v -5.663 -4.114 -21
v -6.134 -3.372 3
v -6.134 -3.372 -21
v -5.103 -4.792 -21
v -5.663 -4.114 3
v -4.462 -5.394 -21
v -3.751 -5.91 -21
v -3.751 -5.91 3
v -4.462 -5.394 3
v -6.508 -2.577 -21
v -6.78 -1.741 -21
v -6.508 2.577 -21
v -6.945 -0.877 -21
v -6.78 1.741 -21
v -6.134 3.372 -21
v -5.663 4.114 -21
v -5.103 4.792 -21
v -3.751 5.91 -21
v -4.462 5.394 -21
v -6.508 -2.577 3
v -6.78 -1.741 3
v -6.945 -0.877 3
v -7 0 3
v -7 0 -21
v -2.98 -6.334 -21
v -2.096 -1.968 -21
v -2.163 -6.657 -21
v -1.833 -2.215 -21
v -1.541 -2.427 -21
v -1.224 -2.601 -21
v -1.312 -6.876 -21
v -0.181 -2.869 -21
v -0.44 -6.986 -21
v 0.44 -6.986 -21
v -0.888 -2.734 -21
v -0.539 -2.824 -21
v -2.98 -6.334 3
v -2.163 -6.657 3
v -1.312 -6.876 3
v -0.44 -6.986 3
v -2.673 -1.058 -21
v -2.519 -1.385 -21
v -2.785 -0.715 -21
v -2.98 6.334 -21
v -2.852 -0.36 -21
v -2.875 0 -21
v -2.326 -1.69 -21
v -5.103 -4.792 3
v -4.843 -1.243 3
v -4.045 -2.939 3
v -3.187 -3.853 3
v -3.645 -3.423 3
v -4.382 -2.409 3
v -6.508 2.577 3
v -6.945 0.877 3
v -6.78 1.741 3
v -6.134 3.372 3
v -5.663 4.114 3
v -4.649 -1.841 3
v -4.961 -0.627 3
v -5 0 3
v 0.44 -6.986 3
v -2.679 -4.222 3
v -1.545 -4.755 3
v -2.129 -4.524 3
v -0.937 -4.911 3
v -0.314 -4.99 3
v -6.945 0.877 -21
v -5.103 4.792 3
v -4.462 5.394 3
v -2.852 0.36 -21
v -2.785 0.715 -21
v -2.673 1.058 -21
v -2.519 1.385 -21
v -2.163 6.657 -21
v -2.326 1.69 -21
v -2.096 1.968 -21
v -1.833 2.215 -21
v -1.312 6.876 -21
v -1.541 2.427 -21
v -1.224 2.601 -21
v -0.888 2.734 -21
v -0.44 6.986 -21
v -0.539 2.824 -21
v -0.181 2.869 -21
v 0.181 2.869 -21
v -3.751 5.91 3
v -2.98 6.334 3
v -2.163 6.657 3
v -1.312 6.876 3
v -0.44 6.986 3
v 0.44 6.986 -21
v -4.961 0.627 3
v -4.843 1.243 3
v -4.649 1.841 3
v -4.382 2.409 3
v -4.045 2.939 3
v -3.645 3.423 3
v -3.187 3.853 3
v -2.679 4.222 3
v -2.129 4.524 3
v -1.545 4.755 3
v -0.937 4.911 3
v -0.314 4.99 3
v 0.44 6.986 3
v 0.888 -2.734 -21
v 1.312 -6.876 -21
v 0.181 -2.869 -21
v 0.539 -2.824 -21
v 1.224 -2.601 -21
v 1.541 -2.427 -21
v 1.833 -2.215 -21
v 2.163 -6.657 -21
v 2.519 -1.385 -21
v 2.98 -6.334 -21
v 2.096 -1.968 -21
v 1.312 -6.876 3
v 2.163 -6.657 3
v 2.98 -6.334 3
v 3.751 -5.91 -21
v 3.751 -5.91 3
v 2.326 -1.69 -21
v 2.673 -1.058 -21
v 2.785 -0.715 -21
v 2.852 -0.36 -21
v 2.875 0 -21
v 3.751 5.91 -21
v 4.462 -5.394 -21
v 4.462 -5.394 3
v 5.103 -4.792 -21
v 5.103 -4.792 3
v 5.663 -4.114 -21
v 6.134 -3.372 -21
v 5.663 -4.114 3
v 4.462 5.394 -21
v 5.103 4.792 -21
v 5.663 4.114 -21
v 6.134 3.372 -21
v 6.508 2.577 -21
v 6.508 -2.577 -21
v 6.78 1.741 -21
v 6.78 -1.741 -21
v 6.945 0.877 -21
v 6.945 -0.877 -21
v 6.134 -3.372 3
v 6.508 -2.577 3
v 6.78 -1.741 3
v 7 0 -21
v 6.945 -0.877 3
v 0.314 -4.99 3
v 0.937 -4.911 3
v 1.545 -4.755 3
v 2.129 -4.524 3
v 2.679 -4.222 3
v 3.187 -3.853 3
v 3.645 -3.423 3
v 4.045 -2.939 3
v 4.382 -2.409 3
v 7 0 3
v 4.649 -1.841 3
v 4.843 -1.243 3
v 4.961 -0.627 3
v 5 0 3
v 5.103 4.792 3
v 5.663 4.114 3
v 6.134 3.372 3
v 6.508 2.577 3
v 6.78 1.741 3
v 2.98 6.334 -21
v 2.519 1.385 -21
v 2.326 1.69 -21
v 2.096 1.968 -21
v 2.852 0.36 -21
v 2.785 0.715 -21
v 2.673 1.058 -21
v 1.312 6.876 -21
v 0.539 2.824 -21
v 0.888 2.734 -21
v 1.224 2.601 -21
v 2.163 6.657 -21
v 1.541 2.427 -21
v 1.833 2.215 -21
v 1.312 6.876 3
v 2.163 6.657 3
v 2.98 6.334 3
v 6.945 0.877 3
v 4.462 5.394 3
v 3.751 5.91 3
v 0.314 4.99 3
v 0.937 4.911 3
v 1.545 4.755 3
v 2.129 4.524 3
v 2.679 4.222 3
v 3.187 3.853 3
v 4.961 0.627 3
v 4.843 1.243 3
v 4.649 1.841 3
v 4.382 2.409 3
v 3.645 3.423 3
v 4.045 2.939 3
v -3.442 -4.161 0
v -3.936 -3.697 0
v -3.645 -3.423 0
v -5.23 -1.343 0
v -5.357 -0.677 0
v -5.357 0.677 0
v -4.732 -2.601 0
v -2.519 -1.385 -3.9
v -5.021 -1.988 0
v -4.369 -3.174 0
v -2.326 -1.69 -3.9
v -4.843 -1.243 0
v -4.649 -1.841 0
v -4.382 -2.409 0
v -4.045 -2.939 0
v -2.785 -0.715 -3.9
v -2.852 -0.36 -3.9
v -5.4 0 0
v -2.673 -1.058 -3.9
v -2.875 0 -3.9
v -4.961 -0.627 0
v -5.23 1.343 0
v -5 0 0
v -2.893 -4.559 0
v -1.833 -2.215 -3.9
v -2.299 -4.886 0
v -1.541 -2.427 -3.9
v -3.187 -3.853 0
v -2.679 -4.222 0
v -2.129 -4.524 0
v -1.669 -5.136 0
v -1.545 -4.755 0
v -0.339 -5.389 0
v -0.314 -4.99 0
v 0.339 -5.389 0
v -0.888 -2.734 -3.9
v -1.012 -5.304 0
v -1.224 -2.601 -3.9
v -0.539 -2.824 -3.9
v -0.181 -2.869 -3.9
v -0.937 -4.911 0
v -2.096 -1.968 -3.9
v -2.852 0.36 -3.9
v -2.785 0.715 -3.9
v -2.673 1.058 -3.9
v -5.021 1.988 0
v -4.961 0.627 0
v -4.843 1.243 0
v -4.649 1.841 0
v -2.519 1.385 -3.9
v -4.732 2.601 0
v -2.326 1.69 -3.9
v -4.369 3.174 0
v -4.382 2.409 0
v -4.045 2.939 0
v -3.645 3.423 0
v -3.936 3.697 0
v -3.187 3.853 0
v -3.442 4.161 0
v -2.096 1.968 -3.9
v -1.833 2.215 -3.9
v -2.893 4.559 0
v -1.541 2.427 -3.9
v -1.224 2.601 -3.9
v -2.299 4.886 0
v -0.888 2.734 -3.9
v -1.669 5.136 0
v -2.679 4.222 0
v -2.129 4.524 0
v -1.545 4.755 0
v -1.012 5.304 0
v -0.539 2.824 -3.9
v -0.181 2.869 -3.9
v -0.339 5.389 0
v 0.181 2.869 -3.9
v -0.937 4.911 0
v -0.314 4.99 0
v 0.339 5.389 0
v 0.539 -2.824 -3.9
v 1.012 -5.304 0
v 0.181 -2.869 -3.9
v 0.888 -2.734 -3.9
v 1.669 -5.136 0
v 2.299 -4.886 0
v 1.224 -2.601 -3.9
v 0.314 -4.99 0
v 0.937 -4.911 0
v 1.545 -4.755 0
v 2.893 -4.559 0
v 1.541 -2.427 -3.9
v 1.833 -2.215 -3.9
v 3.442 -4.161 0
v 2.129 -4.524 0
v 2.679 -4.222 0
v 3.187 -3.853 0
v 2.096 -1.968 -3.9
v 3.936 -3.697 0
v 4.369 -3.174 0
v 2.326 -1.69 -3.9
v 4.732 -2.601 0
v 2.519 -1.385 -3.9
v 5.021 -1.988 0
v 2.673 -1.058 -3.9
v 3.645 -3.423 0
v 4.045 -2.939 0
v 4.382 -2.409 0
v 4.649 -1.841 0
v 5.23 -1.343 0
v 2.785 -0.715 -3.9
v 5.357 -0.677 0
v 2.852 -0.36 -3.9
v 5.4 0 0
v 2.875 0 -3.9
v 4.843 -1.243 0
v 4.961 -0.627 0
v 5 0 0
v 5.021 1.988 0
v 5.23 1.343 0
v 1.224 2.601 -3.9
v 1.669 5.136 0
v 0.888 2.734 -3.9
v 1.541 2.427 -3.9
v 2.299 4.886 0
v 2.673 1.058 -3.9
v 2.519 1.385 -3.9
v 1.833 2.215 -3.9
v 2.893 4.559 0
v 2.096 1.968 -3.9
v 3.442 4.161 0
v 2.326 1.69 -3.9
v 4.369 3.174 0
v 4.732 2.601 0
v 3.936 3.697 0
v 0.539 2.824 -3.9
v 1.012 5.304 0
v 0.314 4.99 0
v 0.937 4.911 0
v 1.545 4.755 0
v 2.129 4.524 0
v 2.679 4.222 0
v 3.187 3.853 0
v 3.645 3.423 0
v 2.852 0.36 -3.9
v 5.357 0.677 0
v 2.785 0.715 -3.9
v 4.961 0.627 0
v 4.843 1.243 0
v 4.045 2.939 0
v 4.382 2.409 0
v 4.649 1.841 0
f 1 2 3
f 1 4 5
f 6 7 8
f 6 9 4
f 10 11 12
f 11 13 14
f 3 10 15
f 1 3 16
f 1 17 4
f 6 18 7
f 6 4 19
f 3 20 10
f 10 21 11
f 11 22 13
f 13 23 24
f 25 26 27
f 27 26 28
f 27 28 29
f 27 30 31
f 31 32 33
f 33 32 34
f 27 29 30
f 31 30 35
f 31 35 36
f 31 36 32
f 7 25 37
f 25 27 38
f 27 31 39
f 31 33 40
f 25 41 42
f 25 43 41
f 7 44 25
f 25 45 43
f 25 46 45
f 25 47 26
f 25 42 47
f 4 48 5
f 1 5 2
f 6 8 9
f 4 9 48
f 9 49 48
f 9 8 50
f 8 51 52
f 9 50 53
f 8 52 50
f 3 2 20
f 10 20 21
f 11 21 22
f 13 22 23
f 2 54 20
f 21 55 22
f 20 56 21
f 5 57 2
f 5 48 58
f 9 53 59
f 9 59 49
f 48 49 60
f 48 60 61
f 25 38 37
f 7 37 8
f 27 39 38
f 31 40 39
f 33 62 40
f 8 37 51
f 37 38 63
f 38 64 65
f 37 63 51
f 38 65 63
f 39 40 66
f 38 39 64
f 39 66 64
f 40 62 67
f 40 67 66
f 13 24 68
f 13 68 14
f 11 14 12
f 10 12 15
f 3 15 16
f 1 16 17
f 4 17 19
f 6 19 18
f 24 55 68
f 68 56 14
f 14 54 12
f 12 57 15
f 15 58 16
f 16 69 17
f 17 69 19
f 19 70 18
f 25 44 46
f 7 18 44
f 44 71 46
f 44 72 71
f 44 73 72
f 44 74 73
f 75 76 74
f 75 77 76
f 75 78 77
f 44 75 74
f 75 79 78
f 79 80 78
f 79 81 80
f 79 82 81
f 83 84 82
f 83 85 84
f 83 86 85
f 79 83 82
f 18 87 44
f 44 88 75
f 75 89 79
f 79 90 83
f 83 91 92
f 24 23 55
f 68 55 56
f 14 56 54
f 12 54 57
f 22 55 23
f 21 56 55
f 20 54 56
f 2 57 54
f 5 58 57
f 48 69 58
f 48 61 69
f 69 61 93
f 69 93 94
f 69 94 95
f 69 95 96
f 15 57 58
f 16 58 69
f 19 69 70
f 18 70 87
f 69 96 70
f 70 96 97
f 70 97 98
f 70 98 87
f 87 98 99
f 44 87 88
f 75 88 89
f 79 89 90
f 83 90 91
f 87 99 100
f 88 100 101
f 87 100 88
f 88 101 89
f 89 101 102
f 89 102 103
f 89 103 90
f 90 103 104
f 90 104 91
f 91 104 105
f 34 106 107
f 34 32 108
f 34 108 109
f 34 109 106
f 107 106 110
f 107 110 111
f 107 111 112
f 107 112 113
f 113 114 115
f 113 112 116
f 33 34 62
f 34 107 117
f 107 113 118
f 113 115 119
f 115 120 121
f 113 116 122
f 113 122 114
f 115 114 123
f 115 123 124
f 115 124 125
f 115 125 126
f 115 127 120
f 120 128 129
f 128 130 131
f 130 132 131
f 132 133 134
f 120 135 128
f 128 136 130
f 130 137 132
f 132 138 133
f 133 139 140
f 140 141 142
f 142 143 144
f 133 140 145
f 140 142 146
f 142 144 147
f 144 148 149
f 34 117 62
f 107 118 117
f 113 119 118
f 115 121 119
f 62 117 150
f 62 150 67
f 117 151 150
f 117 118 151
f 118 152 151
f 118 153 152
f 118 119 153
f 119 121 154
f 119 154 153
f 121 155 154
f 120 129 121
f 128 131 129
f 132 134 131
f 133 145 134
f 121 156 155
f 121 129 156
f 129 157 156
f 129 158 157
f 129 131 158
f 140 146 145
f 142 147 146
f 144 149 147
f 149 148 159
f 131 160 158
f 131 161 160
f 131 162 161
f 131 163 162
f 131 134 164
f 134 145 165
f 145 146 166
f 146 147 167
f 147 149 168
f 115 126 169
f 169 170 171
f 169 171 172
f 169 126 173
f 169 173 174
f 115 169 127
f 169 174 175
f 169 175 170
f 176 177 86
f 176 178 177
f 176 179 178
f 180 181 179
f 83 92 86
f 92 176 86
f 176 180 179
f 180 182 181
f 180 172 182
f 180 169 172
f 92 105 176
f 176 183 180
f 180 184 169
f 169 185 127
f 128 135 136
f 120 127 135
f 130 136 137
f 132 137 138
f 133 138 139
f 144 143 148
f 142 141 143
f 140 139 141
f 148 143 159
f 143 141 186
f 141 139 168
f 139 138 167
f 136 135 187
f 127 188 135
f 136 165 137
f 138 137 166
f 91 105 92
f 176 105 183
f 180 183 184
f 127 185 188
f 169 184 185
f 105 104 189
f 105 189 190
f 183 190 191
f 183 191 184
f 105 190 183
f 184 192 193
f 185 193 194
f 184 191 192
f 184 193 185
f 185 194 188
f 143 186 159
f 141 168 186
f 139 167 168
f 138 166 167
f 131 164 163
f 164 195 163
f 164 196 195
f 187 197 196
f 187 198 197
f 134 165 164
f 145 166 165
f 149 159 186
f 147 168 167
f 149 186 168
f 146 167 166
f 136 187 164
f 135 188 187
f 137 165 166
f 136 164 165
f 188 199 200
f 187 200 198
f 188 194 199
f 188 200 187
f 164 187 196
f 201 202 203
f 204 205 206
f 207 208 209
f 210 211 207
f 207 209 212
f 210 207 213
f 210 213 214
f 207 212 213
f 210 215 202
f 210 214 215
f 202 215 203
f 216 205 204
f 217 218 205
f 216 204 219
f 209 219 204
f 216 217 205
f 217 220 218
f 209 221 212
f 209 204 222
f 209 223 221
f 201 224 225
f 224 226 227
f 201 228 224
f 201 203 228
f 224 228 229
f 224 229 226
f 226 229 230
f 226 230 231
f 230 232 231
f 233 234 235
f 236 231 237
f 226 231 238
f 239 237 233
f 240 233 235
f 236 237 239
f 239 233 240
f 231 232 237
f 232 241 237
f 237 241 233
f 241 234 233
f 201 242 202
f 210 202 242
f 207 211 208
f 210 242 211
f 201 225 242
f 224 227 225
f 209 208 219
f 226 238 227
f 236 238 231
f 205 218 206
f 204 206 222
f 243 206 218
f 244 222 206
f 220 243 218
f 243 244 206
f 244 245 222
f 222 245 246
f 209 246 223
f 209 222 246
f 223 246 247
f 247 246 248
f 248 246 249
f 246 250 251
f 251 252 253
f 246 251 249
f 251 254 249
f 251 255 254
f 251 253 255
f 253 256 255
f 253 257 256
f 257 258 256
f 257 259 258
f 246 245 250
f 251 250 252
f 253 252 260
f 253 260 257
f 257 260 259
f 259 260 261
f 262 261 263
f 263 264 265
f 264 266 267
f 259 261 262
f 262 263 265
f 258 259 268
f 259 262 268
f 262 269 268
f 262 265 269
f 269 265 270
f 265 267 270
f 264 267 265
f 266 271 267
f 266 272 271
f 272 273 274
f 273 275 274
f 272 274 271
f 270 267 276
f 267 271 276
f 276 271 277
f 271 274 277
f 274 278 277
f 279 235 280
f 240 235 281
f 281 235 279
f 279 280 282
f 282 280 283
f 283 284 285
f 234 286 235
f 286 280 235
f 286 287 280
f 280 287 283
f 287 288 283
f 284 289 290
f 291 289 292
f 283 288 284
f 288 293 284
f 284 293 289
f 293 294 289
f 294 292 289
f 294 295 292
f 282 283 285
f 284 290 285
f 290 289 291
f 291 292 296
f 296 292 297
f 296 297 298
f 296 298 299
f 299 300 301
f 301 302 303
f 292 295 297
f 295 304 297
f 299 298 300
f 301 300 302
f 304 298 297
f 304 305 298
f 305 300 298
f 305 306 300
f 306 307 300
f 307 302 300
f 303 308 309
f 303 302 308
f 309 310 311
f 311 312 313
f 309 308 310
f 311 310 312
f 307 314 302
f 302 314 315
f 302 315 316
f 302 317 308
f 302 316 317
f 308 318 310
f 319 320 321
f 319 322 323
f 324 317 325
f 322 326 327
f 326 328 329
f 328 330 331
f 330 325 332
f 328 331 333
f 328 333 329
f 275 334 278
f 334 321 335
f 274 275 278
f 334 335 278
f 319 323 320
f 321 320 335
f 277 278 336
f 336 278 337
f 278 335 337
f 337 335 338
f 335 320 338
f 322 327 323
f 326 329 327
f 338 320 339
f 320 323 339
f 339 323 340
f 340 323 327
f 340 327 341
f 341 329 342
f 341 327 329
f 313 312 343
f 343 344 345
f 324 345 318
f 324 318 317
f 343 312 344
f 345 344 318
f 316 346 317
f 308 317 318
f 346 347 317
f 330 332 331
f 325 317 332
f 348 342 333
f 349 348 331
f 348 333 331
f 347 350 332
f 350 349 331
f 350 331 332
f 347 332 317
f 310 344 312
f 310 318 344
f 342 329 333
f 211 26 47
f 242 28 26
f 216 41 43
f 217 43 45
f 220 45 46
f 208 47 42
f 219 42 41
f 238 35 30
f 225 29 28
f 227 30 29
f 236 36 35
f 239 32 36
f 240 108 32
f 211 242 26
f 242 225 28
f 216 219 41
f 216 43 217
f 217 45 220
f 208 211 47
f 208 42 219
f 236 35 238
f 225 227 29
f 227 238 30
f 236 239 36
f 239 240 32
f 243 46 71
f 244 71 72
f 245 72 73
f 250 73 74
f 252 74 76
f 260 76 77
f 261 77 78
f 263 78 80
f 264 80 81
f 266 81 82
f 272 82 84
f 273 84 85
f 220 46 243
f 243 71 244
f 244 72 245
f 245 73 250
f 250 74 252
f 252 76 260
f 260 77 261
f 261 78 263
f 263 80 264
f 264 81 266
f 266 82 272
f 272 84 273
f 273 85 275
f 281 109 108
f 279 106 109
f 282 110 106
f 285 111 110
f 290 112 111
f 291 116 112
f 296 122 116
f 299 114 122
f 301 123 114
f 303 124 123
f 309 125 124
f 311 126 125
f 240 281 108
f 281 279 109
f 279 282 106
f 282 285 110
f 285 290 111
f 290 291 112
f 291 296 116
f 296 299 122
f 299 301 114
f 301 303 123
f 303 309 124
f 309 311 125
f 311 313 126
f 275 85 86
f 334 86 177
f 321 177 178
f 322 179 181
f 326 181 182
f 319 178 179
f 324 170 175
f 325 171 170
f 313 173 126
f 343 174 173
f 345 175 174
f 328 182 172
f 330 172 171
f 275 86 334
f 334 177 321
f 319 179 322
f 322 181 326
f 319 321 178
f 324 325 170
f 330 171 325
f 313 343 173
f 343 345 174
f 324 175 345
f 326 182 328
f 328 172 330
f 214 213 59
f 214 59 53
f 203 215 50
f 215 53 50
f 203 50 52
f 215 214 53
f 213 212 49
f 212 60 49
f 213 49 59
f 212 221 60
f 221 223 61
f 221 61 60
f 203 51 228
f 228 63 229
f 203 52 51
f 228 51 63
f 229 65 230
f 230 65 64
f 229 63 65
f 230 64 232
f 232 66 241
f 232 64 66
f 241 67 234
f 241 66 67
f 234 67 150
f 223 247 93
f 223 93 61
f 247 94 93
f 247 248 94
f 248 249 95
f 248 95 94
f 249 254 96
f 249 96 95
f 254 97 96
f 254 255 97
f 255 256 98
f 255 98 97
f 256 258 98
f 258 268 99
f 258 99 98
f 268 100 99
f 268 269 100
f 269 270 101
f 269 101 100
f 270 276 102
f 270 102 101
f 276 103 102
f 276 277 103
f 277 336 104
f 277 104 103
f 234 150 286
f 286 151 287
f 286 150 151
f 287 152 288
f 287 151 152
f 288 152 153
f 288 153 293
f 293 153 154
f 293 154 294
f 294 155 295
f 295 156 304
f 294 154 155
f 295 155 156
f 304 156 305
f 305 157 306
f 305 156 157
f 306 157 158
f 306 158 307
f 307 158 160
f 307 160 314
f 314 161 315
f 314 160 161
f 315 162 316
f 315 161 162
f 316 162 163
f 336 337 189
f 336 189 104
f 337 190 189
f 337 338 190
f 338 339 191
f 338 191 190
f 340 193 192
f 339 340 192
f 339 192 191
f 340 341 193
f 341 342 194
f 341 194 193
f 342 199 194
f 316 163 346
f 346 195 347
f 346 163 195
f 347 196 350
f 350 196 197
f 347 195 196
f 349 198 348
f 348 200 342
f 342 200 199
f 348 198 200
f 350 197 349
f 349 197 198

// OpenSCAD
$fn = 50;

difference() {
	union() {
		translate(v = [0, 0, -21.0]) {
			cylinder(h = 24, r = 7.0);
		}
		#translate(v = [0, 0, -24.0]) {
			cylinder(h = 24, r = 2.875);
		}
	}
	union() {
		translate(v = [0, 0, 0]) {
			rotate(a = [0, 0, 0]) {
				difference() {
					union() {
						translate(v = [0, 0, -24.0]) {
							cylinder(h = 24, r = 2.6);
						}
						translate(v = [0, 0, -3.9]) {
							cylinder(h = 3.9, r1 = 2.875, r2 = 5.4);
						}
						translate(v = [0, 0, -24.0]) {
							cylinder(h = 24, r = 2.875);
						}
						translate(v = [0, 0, -24.0]) {
							cylinder(h = 24, r = 2.6);
						}
					}
					union();
				}
			}
		}
		#cylinder(h = 3, r = 5.0);
	}
}
